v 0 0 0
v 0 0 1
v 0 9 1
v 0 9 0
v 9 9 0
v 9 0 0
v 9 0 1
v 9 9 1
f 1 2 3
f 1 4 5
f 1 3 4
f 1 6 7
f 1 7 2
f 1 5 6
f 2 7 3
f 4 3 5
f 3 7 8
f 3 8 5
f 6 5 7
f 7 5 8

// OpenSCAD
/* Warning, this is a very basic generator with a lot of approximation 
input data : [VQFN, TFB, 9x9x1mm, 64, , A, C04-21435A]
generated by com.zoubworld.electronics.cad.model3d.Basic
Date : Sun Feb 15 10:50:49 CET 2026
*/

//body
color("black")
translate([0,0,0])
cube([9.0,9.0,1.0], center=false);
